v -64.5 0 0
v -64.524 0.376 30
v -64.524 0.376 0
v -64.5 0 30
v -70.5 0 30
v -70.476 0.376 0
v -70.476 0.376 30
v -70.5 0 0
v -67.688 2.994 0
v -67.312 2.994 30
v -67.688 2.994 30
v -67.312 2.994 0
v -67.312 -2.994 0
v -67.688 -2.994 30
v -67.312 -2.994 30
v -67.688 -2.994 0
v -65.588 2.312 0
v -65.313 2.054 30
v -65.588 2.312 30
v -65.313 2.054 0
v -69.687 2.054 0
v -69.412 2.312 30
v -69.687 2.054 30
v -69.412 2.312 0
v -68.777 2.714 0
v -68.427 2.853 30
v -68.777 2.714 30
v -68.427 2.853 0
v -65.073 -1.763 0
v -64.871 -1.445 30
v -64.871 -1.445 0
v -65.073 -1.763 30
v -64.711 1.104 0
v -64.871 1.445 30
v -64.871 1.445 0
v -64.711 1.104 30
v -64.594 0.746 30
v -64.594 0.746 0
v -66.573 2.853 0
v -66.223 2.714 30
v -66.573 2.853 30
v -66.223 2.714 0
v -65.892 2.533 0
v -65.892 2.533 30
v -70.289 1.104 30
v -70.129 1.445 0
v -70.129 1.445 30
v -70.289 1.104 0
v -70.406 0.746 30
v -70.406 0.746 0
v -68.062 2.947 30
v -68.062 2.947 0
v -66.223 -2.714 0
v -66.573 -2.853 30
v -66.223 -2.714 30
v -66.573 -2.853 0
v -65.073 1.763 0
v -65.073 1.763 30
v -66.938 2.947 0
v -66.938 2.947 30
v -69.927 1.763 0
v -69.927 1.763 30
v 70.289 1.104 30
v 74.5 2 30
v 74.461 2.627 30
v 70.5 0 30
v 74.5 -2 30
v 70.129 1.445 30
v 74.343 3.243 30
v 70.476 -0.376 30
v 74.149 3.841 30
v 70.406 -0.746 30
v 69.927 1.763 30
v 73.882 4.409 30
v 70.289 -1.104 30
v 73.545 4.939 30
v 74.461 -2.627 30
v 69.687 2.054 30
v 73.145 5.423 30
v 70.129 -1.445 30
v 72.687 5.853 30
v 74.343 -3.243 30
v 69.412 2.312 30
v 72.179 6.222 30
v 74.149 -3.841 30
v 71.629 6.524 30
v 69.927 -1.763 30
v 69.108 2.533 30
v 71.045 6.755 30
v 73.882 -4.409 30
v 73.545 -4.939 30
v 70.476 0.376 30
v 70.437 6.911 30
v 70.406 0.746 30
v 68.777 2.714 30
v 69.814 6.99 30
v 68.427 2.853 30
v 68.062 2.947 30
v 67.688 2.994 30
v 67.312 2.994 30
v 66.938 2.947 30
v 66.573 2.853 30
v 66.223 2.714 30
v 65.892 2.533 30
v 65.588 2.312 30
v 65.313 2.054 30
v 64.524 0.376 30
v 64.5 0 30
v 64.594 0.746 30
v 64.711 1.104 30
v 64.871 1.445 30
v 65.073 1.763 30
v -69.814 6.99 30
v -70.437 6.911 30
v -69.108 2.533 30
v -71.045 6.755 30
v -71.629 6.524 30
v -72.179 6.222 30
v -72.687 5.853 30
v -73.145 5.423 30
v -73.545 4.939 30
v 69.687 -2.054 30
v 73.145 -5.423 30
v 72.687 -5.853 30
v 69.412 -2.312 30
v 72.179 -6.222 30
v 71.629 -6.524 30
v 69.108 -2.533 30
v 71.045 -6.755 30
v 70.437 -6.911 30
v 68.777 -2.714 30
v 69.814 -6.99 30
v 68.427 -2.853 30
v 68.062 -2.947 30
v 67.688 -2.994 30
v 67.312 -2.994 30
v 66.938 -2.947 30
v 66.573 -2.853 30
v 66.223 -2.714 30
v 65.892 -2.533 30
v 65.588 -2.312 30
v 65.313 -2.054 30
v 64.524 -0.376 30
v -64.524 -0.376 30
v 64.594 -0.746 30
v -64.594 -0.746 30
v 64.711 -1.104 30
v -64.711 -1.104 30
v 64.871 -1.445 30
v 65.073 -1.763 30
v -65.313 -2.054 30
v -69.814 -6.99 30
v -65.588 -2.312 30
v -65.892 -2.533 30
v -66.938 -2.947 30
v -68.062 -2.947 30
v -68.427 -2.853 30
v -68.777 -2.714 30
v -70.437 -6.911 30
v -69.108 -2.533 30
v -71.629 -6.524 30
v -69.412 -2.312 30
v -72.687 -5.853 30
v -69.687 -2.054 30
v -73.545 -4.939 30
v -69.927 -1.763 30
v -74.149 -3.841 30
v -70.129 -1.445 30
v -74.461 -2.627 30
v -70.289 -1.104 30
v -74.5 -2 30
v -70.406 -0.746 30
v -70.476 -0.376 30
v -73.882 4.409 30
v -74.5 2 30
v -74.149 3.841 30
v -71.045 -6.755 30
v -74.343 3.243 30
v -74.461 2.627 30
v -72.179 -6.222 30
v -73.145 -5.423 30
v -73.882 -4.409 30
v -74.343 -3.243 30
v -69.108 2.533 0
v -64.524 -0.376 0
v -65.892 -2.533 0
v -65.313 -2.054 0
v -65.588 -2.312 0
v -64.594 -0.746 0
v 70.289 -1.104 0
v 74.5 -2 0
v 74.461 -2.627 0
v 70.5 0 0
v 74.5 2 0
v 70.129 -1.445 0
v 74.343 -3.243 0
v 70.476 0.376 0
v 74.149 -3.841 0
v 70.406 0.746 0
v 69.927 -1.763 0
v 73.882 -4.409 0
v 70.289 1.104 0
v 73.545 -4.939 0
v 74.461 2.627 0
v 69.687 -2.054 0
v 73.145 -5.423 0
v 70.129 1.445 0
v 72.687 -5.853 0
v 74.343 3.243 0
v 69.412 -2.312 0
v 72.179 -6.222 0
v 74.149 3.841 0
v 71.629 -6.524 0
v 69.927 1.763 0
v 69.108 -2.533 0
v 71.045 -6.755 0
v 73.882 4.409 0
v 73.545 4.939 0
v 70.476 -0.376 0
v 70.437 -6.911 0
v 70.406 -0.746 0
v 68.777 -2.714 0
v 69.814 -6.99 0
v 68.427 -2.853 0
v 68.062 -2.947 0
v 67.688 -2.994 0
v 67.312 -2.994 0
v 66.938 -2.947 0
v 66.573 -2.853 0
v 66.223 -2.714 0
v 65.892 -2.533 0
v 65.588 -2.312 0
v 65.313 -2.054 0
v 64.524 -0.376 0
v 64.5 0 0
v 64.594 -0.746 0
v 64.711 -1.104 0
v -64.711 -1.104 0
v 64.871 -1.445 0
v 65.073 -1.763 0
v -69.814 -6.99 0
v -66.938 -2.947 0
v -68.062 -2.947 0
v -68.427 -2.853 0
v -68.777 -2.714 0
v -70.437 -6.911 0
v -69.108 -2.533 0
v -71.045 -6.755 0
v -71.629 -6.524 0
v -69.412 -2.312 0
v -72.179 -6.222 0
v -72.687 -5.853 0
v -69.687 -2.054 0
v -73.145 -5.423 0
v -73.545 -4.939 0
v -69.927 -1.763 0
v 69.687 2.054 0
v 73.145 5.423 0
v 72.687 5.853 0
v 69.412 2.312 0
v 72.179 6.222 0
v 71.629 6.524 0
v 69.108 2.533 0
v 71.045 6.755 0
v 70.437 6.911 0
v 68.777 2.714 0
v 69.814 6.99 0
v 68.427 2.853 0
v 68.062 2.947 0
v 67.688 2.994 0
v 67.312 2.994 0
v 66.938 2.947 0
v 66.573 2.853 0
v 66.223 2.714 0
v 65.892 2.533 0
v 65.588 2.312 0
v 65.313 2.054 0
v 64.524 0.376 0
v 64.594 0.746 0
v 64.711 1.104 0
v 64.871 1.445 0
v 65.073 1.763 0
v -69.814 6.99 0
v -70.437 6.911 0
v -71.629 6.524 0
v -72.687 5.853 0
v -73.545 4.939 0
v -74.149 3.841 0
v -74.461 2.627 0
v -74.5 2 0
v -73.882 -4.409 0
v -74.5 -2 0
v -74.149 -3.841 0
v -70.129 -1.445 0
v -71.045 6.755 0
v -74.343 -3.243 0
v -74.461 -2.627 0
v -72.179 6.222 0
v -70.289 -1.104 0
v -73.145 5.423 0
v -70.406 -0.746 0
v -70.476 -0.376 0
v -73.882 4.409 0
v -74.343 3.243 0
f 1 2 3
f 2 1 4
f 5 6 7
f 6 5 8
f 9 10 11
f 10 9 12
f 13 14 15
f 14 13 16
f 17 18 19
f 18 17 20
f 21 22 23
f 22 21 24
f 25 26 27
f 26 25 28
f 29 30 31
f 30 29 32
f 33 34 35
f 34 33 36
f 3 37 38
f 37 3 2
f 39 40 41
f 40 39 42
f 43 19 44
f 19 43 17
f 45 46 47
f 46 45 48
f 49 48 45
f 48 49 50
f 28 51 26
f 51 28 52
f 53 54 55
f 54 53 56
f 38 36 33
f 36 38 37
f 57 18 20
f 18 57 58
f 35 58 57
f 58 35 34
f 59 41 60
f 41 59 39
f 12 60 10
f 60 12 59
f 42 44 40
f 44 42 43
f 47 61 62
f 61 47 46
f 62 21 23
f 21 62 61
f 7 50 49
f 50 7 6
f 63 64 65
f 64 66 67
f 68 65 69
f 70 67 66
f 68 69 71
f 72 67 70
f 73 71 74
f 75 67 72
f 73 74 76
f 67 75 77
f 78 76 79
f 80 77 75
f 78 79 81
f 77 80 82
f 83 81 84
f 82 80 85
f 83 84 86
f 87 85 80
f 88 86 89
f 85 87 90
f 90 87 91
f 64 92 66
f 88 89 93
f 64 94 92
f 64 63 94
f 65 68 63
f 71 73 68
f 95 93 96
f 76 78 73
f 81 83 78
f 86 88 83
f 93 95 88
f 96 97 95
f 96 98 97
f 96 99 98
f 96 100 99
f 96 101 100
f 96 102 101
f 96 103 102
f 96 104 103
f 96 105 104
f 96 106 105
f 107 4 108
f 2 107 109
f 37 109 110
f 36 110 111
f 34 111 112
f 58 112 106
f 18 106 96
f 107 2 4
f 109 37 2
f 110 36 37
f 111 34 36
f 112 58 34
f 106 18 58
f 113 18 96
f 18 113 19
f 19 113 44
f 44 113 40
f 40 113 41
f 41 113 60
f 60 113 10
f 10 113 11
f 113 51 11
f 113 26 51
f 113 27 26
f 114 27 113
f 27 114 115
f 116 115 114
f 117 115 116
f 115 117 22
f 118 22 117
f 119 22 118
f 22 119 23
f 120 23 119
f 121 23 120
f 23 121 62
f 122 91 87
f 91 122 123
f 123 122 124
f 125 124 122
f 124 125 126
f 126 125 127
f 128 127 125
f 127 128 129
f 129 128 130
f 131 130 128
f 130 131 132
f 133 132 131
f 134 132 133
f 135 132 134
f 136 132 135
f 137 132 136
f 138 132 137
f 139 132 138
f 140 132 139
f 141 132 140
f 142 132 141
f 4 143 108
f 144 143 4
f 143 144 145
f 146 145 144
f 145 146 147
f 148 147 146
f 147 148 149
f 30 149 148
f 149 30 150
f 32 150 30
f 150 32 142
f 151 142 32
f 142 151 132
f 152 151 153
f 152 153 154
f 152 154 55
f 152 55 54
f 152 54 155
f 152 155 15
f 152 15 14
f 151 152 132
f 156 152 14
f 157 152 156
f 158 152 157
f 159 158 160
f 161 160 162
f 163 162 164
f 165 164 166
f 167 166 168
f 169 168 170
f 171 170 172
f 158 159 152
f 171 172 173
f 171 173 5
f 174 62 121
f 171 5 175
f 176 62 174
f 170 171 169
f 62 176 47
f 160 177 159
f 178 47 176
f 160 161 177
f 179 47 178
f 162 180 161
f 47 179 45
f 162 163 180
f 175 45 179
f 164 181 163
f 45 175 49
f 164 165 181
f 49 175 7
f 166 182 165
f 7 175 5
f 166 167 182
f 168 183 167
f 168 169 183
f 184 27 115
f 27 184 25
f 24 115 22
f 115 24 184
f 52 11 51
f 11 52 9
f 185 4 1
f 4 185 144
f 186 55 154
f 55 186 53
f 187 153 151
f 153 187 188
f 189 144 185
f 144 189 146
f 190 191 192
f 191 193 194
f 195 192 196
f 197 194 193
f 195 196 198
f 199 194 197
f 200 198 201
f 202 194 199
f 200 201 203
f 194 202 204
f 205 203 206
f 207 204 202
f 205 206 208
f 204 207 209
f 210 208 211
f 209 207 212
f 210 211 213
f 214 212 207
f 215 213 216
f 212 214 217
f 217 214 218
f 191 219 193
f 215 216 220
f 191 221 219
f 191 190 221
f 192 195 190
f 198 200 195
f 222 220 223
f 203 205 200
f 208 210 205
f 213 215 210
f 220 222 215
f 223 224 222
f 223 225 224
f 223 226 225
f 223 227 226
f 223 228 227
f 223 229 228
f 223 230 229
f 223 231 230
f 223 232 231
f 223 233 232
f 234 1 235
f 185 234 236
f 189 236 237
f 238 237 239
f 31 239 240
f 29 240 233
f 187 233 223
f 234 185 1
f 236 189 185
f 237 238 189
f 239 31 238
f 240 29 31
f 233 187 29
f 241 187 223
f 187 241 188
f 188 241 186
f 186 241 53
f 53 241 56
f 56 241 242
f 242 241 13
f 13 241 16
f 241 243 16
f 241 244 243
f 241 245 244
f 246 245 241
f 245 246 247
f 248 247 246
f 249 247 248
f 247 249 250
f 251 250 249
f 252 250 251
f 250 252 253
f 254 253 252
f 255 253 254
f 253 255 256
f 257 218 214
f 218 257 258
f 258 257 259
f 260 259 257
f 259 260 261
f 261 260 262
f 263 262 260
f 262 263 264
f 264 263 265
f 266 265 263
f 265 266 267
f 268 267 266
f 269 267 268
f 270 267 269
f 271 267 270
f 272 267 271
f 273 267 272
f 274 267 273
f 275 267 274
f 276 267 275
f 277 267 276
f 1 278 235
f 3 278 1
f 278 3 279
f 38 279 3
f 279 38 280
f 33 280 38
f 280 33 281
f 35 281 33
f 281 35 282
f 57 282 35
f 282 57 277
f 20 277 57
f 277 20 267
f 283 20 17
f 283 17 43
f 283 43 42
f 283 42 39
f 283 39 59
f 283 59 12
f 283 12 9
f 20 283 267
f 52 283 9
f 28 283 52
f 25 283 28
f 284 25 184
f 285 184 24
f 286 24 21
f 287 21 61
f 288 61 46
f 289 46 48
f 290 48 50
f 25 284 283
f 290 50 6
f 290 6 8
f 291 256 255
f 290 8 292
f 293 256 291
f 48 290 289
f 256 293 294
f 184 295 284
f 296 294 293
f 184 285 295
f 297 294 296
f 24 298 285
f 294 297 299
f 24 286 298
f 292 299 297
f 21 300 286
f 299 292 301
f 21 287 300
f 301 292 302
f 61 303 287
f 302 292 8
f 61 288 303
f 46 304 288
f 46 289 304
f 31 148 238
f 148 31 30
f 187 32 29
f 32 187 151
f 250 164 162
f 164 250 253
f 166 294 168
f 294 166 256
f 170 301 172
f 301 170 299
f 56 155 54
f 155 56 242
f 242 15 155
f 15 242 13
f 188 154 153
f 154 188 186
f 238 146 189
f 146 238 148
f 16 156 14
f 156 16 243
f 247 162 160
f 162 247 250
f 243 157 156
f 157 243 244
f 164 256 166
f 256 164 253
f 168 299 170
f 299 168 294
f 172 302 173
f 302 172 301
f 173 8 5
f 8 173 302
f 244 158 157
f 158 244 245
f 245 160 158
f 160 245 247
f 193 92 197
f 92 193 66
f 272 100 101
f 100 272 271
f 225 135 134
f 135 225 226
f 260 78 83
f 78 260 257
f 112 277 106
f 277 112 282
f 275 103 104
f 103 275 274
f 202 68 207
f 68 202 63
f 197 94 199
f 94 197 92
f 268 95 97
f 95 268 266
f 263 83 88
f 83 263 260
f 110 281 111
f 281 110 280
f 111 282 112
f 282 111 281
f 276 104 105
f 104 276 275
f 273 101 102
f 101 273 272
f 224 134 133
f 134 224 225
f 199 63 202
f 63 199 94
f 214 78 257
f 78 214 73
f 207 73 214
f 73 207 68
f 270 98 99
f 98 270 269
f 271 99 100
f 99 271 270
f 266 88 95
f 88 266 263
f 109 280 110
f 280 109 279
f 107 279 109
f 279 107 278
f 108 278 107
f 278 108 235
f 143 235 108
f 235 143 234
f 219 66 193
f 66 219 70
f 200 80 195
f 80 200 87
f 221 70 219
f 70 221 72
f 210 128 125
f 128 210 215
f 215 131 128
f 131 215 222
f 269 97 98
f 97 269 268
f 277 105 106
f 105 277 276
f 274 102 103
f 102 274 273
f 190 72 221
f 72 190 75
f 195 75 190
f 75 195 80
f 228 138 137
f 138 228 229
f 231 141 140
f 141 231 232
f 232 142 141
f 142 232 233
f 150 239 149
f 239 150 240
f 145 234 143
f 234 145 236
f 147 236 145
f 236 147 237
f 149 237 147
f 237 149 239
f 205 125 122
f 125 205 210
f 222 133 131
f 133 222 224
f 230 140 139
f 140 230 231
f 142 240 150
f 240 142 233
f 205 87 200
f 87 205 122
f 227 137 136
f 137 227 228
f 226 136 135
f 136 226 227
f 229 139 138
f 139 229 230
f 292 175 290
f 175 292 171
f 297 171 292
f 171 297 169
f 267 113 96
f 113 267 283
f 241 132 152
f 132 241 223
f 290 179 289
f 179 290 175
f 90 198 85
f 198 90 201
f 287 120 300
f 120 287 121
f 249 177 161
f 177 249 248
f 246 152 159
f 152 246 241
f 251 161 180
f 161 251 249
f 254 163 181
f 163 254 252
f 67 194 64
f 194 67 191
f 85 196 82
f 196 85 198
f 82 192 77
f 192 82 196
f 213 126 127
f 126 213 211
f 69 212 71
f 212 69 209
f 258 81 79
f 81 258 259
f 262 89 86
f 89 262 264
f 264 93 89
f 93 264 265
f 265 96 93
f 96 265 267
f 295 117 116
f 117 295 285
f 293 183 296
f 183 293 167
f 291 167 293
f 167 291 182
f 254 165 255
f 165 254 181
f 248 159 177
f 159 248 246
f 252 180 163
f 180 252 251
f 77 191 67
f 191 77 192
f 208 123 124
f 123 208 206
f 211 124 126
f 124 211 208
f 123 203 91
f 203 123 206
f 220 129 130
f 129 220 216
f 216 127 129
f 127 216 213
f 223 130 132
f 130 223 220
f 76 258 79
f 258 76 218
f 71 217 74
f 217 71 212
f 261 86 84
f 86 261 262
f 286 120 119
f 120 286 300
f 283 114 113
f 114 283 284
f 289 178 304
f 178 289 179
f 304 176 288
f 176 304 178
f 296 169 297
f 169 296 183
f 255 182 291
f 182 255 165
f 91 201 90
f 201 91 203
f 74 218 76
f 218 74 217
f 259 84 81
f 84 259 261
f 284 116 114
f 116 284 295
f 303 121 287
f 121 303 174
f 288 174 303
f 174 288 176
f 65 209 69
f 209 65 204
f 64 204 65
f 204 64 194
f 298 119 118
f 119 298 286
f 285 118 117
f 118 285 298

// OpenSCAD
$fn = 50;


difference() {
	union() {
		hull() {
			translate(v = [-69.5000000000, 2.0000000000, 0]) {
				cylinder(h = 30, r = 5);
			}
			translate(v = [69.5000000000, 2.0000000000, 0]) {
				cylinder(h = 30, r = 5);
			}
			translate(v = [-69.5000000000, -2.0000000000, 0]) {
				cylinder(h = 30, r = 5);
			}
			translate(v = [69.5000000000, -2.0000000000, 0]) {
				cylinder(h = 30, r = 5);
			}
		}
	}
	union() {
		translate(v = [-67.5000000000, 0.0000000000, 0]) {
			cylinder(h = 30, r = 3.0000000000);
		}
		translate(v = [67.5000000000, 0.0000000000, 0]) {
			cylinder(h = 30, r = 3.0000000000);
		}
		translate(v = [-67.5000000000, 0.0000000000, 0]) {
			cylinder(h = 30, r = 1.5000000000);
		}
		translate(v = [67.5000000000, 0.0000000000, 0]) {
			cylinder(h = 30, r = 1.5000000000);
		}
		translate(v = [-67.5000000000, 0.0000000000, 0]) {
			cylinder(h = 30, r = 1.5000000000);
		}
		translate(v = [67.5000000000, 0.0000000000, 0]) {
			cylinder(h = 30, r = 1.5000000000);
		}
		translate(v = [-67.5000000000, 0.0000000000, 0]) {
			cylinder(h = 30, r = 1.5000000000);
		}
		translate(v = [67.5000000000, 0.0000000000, 0]) {
			cylinder(h = 30, r = 1.5000000000);
		}
	}
}
